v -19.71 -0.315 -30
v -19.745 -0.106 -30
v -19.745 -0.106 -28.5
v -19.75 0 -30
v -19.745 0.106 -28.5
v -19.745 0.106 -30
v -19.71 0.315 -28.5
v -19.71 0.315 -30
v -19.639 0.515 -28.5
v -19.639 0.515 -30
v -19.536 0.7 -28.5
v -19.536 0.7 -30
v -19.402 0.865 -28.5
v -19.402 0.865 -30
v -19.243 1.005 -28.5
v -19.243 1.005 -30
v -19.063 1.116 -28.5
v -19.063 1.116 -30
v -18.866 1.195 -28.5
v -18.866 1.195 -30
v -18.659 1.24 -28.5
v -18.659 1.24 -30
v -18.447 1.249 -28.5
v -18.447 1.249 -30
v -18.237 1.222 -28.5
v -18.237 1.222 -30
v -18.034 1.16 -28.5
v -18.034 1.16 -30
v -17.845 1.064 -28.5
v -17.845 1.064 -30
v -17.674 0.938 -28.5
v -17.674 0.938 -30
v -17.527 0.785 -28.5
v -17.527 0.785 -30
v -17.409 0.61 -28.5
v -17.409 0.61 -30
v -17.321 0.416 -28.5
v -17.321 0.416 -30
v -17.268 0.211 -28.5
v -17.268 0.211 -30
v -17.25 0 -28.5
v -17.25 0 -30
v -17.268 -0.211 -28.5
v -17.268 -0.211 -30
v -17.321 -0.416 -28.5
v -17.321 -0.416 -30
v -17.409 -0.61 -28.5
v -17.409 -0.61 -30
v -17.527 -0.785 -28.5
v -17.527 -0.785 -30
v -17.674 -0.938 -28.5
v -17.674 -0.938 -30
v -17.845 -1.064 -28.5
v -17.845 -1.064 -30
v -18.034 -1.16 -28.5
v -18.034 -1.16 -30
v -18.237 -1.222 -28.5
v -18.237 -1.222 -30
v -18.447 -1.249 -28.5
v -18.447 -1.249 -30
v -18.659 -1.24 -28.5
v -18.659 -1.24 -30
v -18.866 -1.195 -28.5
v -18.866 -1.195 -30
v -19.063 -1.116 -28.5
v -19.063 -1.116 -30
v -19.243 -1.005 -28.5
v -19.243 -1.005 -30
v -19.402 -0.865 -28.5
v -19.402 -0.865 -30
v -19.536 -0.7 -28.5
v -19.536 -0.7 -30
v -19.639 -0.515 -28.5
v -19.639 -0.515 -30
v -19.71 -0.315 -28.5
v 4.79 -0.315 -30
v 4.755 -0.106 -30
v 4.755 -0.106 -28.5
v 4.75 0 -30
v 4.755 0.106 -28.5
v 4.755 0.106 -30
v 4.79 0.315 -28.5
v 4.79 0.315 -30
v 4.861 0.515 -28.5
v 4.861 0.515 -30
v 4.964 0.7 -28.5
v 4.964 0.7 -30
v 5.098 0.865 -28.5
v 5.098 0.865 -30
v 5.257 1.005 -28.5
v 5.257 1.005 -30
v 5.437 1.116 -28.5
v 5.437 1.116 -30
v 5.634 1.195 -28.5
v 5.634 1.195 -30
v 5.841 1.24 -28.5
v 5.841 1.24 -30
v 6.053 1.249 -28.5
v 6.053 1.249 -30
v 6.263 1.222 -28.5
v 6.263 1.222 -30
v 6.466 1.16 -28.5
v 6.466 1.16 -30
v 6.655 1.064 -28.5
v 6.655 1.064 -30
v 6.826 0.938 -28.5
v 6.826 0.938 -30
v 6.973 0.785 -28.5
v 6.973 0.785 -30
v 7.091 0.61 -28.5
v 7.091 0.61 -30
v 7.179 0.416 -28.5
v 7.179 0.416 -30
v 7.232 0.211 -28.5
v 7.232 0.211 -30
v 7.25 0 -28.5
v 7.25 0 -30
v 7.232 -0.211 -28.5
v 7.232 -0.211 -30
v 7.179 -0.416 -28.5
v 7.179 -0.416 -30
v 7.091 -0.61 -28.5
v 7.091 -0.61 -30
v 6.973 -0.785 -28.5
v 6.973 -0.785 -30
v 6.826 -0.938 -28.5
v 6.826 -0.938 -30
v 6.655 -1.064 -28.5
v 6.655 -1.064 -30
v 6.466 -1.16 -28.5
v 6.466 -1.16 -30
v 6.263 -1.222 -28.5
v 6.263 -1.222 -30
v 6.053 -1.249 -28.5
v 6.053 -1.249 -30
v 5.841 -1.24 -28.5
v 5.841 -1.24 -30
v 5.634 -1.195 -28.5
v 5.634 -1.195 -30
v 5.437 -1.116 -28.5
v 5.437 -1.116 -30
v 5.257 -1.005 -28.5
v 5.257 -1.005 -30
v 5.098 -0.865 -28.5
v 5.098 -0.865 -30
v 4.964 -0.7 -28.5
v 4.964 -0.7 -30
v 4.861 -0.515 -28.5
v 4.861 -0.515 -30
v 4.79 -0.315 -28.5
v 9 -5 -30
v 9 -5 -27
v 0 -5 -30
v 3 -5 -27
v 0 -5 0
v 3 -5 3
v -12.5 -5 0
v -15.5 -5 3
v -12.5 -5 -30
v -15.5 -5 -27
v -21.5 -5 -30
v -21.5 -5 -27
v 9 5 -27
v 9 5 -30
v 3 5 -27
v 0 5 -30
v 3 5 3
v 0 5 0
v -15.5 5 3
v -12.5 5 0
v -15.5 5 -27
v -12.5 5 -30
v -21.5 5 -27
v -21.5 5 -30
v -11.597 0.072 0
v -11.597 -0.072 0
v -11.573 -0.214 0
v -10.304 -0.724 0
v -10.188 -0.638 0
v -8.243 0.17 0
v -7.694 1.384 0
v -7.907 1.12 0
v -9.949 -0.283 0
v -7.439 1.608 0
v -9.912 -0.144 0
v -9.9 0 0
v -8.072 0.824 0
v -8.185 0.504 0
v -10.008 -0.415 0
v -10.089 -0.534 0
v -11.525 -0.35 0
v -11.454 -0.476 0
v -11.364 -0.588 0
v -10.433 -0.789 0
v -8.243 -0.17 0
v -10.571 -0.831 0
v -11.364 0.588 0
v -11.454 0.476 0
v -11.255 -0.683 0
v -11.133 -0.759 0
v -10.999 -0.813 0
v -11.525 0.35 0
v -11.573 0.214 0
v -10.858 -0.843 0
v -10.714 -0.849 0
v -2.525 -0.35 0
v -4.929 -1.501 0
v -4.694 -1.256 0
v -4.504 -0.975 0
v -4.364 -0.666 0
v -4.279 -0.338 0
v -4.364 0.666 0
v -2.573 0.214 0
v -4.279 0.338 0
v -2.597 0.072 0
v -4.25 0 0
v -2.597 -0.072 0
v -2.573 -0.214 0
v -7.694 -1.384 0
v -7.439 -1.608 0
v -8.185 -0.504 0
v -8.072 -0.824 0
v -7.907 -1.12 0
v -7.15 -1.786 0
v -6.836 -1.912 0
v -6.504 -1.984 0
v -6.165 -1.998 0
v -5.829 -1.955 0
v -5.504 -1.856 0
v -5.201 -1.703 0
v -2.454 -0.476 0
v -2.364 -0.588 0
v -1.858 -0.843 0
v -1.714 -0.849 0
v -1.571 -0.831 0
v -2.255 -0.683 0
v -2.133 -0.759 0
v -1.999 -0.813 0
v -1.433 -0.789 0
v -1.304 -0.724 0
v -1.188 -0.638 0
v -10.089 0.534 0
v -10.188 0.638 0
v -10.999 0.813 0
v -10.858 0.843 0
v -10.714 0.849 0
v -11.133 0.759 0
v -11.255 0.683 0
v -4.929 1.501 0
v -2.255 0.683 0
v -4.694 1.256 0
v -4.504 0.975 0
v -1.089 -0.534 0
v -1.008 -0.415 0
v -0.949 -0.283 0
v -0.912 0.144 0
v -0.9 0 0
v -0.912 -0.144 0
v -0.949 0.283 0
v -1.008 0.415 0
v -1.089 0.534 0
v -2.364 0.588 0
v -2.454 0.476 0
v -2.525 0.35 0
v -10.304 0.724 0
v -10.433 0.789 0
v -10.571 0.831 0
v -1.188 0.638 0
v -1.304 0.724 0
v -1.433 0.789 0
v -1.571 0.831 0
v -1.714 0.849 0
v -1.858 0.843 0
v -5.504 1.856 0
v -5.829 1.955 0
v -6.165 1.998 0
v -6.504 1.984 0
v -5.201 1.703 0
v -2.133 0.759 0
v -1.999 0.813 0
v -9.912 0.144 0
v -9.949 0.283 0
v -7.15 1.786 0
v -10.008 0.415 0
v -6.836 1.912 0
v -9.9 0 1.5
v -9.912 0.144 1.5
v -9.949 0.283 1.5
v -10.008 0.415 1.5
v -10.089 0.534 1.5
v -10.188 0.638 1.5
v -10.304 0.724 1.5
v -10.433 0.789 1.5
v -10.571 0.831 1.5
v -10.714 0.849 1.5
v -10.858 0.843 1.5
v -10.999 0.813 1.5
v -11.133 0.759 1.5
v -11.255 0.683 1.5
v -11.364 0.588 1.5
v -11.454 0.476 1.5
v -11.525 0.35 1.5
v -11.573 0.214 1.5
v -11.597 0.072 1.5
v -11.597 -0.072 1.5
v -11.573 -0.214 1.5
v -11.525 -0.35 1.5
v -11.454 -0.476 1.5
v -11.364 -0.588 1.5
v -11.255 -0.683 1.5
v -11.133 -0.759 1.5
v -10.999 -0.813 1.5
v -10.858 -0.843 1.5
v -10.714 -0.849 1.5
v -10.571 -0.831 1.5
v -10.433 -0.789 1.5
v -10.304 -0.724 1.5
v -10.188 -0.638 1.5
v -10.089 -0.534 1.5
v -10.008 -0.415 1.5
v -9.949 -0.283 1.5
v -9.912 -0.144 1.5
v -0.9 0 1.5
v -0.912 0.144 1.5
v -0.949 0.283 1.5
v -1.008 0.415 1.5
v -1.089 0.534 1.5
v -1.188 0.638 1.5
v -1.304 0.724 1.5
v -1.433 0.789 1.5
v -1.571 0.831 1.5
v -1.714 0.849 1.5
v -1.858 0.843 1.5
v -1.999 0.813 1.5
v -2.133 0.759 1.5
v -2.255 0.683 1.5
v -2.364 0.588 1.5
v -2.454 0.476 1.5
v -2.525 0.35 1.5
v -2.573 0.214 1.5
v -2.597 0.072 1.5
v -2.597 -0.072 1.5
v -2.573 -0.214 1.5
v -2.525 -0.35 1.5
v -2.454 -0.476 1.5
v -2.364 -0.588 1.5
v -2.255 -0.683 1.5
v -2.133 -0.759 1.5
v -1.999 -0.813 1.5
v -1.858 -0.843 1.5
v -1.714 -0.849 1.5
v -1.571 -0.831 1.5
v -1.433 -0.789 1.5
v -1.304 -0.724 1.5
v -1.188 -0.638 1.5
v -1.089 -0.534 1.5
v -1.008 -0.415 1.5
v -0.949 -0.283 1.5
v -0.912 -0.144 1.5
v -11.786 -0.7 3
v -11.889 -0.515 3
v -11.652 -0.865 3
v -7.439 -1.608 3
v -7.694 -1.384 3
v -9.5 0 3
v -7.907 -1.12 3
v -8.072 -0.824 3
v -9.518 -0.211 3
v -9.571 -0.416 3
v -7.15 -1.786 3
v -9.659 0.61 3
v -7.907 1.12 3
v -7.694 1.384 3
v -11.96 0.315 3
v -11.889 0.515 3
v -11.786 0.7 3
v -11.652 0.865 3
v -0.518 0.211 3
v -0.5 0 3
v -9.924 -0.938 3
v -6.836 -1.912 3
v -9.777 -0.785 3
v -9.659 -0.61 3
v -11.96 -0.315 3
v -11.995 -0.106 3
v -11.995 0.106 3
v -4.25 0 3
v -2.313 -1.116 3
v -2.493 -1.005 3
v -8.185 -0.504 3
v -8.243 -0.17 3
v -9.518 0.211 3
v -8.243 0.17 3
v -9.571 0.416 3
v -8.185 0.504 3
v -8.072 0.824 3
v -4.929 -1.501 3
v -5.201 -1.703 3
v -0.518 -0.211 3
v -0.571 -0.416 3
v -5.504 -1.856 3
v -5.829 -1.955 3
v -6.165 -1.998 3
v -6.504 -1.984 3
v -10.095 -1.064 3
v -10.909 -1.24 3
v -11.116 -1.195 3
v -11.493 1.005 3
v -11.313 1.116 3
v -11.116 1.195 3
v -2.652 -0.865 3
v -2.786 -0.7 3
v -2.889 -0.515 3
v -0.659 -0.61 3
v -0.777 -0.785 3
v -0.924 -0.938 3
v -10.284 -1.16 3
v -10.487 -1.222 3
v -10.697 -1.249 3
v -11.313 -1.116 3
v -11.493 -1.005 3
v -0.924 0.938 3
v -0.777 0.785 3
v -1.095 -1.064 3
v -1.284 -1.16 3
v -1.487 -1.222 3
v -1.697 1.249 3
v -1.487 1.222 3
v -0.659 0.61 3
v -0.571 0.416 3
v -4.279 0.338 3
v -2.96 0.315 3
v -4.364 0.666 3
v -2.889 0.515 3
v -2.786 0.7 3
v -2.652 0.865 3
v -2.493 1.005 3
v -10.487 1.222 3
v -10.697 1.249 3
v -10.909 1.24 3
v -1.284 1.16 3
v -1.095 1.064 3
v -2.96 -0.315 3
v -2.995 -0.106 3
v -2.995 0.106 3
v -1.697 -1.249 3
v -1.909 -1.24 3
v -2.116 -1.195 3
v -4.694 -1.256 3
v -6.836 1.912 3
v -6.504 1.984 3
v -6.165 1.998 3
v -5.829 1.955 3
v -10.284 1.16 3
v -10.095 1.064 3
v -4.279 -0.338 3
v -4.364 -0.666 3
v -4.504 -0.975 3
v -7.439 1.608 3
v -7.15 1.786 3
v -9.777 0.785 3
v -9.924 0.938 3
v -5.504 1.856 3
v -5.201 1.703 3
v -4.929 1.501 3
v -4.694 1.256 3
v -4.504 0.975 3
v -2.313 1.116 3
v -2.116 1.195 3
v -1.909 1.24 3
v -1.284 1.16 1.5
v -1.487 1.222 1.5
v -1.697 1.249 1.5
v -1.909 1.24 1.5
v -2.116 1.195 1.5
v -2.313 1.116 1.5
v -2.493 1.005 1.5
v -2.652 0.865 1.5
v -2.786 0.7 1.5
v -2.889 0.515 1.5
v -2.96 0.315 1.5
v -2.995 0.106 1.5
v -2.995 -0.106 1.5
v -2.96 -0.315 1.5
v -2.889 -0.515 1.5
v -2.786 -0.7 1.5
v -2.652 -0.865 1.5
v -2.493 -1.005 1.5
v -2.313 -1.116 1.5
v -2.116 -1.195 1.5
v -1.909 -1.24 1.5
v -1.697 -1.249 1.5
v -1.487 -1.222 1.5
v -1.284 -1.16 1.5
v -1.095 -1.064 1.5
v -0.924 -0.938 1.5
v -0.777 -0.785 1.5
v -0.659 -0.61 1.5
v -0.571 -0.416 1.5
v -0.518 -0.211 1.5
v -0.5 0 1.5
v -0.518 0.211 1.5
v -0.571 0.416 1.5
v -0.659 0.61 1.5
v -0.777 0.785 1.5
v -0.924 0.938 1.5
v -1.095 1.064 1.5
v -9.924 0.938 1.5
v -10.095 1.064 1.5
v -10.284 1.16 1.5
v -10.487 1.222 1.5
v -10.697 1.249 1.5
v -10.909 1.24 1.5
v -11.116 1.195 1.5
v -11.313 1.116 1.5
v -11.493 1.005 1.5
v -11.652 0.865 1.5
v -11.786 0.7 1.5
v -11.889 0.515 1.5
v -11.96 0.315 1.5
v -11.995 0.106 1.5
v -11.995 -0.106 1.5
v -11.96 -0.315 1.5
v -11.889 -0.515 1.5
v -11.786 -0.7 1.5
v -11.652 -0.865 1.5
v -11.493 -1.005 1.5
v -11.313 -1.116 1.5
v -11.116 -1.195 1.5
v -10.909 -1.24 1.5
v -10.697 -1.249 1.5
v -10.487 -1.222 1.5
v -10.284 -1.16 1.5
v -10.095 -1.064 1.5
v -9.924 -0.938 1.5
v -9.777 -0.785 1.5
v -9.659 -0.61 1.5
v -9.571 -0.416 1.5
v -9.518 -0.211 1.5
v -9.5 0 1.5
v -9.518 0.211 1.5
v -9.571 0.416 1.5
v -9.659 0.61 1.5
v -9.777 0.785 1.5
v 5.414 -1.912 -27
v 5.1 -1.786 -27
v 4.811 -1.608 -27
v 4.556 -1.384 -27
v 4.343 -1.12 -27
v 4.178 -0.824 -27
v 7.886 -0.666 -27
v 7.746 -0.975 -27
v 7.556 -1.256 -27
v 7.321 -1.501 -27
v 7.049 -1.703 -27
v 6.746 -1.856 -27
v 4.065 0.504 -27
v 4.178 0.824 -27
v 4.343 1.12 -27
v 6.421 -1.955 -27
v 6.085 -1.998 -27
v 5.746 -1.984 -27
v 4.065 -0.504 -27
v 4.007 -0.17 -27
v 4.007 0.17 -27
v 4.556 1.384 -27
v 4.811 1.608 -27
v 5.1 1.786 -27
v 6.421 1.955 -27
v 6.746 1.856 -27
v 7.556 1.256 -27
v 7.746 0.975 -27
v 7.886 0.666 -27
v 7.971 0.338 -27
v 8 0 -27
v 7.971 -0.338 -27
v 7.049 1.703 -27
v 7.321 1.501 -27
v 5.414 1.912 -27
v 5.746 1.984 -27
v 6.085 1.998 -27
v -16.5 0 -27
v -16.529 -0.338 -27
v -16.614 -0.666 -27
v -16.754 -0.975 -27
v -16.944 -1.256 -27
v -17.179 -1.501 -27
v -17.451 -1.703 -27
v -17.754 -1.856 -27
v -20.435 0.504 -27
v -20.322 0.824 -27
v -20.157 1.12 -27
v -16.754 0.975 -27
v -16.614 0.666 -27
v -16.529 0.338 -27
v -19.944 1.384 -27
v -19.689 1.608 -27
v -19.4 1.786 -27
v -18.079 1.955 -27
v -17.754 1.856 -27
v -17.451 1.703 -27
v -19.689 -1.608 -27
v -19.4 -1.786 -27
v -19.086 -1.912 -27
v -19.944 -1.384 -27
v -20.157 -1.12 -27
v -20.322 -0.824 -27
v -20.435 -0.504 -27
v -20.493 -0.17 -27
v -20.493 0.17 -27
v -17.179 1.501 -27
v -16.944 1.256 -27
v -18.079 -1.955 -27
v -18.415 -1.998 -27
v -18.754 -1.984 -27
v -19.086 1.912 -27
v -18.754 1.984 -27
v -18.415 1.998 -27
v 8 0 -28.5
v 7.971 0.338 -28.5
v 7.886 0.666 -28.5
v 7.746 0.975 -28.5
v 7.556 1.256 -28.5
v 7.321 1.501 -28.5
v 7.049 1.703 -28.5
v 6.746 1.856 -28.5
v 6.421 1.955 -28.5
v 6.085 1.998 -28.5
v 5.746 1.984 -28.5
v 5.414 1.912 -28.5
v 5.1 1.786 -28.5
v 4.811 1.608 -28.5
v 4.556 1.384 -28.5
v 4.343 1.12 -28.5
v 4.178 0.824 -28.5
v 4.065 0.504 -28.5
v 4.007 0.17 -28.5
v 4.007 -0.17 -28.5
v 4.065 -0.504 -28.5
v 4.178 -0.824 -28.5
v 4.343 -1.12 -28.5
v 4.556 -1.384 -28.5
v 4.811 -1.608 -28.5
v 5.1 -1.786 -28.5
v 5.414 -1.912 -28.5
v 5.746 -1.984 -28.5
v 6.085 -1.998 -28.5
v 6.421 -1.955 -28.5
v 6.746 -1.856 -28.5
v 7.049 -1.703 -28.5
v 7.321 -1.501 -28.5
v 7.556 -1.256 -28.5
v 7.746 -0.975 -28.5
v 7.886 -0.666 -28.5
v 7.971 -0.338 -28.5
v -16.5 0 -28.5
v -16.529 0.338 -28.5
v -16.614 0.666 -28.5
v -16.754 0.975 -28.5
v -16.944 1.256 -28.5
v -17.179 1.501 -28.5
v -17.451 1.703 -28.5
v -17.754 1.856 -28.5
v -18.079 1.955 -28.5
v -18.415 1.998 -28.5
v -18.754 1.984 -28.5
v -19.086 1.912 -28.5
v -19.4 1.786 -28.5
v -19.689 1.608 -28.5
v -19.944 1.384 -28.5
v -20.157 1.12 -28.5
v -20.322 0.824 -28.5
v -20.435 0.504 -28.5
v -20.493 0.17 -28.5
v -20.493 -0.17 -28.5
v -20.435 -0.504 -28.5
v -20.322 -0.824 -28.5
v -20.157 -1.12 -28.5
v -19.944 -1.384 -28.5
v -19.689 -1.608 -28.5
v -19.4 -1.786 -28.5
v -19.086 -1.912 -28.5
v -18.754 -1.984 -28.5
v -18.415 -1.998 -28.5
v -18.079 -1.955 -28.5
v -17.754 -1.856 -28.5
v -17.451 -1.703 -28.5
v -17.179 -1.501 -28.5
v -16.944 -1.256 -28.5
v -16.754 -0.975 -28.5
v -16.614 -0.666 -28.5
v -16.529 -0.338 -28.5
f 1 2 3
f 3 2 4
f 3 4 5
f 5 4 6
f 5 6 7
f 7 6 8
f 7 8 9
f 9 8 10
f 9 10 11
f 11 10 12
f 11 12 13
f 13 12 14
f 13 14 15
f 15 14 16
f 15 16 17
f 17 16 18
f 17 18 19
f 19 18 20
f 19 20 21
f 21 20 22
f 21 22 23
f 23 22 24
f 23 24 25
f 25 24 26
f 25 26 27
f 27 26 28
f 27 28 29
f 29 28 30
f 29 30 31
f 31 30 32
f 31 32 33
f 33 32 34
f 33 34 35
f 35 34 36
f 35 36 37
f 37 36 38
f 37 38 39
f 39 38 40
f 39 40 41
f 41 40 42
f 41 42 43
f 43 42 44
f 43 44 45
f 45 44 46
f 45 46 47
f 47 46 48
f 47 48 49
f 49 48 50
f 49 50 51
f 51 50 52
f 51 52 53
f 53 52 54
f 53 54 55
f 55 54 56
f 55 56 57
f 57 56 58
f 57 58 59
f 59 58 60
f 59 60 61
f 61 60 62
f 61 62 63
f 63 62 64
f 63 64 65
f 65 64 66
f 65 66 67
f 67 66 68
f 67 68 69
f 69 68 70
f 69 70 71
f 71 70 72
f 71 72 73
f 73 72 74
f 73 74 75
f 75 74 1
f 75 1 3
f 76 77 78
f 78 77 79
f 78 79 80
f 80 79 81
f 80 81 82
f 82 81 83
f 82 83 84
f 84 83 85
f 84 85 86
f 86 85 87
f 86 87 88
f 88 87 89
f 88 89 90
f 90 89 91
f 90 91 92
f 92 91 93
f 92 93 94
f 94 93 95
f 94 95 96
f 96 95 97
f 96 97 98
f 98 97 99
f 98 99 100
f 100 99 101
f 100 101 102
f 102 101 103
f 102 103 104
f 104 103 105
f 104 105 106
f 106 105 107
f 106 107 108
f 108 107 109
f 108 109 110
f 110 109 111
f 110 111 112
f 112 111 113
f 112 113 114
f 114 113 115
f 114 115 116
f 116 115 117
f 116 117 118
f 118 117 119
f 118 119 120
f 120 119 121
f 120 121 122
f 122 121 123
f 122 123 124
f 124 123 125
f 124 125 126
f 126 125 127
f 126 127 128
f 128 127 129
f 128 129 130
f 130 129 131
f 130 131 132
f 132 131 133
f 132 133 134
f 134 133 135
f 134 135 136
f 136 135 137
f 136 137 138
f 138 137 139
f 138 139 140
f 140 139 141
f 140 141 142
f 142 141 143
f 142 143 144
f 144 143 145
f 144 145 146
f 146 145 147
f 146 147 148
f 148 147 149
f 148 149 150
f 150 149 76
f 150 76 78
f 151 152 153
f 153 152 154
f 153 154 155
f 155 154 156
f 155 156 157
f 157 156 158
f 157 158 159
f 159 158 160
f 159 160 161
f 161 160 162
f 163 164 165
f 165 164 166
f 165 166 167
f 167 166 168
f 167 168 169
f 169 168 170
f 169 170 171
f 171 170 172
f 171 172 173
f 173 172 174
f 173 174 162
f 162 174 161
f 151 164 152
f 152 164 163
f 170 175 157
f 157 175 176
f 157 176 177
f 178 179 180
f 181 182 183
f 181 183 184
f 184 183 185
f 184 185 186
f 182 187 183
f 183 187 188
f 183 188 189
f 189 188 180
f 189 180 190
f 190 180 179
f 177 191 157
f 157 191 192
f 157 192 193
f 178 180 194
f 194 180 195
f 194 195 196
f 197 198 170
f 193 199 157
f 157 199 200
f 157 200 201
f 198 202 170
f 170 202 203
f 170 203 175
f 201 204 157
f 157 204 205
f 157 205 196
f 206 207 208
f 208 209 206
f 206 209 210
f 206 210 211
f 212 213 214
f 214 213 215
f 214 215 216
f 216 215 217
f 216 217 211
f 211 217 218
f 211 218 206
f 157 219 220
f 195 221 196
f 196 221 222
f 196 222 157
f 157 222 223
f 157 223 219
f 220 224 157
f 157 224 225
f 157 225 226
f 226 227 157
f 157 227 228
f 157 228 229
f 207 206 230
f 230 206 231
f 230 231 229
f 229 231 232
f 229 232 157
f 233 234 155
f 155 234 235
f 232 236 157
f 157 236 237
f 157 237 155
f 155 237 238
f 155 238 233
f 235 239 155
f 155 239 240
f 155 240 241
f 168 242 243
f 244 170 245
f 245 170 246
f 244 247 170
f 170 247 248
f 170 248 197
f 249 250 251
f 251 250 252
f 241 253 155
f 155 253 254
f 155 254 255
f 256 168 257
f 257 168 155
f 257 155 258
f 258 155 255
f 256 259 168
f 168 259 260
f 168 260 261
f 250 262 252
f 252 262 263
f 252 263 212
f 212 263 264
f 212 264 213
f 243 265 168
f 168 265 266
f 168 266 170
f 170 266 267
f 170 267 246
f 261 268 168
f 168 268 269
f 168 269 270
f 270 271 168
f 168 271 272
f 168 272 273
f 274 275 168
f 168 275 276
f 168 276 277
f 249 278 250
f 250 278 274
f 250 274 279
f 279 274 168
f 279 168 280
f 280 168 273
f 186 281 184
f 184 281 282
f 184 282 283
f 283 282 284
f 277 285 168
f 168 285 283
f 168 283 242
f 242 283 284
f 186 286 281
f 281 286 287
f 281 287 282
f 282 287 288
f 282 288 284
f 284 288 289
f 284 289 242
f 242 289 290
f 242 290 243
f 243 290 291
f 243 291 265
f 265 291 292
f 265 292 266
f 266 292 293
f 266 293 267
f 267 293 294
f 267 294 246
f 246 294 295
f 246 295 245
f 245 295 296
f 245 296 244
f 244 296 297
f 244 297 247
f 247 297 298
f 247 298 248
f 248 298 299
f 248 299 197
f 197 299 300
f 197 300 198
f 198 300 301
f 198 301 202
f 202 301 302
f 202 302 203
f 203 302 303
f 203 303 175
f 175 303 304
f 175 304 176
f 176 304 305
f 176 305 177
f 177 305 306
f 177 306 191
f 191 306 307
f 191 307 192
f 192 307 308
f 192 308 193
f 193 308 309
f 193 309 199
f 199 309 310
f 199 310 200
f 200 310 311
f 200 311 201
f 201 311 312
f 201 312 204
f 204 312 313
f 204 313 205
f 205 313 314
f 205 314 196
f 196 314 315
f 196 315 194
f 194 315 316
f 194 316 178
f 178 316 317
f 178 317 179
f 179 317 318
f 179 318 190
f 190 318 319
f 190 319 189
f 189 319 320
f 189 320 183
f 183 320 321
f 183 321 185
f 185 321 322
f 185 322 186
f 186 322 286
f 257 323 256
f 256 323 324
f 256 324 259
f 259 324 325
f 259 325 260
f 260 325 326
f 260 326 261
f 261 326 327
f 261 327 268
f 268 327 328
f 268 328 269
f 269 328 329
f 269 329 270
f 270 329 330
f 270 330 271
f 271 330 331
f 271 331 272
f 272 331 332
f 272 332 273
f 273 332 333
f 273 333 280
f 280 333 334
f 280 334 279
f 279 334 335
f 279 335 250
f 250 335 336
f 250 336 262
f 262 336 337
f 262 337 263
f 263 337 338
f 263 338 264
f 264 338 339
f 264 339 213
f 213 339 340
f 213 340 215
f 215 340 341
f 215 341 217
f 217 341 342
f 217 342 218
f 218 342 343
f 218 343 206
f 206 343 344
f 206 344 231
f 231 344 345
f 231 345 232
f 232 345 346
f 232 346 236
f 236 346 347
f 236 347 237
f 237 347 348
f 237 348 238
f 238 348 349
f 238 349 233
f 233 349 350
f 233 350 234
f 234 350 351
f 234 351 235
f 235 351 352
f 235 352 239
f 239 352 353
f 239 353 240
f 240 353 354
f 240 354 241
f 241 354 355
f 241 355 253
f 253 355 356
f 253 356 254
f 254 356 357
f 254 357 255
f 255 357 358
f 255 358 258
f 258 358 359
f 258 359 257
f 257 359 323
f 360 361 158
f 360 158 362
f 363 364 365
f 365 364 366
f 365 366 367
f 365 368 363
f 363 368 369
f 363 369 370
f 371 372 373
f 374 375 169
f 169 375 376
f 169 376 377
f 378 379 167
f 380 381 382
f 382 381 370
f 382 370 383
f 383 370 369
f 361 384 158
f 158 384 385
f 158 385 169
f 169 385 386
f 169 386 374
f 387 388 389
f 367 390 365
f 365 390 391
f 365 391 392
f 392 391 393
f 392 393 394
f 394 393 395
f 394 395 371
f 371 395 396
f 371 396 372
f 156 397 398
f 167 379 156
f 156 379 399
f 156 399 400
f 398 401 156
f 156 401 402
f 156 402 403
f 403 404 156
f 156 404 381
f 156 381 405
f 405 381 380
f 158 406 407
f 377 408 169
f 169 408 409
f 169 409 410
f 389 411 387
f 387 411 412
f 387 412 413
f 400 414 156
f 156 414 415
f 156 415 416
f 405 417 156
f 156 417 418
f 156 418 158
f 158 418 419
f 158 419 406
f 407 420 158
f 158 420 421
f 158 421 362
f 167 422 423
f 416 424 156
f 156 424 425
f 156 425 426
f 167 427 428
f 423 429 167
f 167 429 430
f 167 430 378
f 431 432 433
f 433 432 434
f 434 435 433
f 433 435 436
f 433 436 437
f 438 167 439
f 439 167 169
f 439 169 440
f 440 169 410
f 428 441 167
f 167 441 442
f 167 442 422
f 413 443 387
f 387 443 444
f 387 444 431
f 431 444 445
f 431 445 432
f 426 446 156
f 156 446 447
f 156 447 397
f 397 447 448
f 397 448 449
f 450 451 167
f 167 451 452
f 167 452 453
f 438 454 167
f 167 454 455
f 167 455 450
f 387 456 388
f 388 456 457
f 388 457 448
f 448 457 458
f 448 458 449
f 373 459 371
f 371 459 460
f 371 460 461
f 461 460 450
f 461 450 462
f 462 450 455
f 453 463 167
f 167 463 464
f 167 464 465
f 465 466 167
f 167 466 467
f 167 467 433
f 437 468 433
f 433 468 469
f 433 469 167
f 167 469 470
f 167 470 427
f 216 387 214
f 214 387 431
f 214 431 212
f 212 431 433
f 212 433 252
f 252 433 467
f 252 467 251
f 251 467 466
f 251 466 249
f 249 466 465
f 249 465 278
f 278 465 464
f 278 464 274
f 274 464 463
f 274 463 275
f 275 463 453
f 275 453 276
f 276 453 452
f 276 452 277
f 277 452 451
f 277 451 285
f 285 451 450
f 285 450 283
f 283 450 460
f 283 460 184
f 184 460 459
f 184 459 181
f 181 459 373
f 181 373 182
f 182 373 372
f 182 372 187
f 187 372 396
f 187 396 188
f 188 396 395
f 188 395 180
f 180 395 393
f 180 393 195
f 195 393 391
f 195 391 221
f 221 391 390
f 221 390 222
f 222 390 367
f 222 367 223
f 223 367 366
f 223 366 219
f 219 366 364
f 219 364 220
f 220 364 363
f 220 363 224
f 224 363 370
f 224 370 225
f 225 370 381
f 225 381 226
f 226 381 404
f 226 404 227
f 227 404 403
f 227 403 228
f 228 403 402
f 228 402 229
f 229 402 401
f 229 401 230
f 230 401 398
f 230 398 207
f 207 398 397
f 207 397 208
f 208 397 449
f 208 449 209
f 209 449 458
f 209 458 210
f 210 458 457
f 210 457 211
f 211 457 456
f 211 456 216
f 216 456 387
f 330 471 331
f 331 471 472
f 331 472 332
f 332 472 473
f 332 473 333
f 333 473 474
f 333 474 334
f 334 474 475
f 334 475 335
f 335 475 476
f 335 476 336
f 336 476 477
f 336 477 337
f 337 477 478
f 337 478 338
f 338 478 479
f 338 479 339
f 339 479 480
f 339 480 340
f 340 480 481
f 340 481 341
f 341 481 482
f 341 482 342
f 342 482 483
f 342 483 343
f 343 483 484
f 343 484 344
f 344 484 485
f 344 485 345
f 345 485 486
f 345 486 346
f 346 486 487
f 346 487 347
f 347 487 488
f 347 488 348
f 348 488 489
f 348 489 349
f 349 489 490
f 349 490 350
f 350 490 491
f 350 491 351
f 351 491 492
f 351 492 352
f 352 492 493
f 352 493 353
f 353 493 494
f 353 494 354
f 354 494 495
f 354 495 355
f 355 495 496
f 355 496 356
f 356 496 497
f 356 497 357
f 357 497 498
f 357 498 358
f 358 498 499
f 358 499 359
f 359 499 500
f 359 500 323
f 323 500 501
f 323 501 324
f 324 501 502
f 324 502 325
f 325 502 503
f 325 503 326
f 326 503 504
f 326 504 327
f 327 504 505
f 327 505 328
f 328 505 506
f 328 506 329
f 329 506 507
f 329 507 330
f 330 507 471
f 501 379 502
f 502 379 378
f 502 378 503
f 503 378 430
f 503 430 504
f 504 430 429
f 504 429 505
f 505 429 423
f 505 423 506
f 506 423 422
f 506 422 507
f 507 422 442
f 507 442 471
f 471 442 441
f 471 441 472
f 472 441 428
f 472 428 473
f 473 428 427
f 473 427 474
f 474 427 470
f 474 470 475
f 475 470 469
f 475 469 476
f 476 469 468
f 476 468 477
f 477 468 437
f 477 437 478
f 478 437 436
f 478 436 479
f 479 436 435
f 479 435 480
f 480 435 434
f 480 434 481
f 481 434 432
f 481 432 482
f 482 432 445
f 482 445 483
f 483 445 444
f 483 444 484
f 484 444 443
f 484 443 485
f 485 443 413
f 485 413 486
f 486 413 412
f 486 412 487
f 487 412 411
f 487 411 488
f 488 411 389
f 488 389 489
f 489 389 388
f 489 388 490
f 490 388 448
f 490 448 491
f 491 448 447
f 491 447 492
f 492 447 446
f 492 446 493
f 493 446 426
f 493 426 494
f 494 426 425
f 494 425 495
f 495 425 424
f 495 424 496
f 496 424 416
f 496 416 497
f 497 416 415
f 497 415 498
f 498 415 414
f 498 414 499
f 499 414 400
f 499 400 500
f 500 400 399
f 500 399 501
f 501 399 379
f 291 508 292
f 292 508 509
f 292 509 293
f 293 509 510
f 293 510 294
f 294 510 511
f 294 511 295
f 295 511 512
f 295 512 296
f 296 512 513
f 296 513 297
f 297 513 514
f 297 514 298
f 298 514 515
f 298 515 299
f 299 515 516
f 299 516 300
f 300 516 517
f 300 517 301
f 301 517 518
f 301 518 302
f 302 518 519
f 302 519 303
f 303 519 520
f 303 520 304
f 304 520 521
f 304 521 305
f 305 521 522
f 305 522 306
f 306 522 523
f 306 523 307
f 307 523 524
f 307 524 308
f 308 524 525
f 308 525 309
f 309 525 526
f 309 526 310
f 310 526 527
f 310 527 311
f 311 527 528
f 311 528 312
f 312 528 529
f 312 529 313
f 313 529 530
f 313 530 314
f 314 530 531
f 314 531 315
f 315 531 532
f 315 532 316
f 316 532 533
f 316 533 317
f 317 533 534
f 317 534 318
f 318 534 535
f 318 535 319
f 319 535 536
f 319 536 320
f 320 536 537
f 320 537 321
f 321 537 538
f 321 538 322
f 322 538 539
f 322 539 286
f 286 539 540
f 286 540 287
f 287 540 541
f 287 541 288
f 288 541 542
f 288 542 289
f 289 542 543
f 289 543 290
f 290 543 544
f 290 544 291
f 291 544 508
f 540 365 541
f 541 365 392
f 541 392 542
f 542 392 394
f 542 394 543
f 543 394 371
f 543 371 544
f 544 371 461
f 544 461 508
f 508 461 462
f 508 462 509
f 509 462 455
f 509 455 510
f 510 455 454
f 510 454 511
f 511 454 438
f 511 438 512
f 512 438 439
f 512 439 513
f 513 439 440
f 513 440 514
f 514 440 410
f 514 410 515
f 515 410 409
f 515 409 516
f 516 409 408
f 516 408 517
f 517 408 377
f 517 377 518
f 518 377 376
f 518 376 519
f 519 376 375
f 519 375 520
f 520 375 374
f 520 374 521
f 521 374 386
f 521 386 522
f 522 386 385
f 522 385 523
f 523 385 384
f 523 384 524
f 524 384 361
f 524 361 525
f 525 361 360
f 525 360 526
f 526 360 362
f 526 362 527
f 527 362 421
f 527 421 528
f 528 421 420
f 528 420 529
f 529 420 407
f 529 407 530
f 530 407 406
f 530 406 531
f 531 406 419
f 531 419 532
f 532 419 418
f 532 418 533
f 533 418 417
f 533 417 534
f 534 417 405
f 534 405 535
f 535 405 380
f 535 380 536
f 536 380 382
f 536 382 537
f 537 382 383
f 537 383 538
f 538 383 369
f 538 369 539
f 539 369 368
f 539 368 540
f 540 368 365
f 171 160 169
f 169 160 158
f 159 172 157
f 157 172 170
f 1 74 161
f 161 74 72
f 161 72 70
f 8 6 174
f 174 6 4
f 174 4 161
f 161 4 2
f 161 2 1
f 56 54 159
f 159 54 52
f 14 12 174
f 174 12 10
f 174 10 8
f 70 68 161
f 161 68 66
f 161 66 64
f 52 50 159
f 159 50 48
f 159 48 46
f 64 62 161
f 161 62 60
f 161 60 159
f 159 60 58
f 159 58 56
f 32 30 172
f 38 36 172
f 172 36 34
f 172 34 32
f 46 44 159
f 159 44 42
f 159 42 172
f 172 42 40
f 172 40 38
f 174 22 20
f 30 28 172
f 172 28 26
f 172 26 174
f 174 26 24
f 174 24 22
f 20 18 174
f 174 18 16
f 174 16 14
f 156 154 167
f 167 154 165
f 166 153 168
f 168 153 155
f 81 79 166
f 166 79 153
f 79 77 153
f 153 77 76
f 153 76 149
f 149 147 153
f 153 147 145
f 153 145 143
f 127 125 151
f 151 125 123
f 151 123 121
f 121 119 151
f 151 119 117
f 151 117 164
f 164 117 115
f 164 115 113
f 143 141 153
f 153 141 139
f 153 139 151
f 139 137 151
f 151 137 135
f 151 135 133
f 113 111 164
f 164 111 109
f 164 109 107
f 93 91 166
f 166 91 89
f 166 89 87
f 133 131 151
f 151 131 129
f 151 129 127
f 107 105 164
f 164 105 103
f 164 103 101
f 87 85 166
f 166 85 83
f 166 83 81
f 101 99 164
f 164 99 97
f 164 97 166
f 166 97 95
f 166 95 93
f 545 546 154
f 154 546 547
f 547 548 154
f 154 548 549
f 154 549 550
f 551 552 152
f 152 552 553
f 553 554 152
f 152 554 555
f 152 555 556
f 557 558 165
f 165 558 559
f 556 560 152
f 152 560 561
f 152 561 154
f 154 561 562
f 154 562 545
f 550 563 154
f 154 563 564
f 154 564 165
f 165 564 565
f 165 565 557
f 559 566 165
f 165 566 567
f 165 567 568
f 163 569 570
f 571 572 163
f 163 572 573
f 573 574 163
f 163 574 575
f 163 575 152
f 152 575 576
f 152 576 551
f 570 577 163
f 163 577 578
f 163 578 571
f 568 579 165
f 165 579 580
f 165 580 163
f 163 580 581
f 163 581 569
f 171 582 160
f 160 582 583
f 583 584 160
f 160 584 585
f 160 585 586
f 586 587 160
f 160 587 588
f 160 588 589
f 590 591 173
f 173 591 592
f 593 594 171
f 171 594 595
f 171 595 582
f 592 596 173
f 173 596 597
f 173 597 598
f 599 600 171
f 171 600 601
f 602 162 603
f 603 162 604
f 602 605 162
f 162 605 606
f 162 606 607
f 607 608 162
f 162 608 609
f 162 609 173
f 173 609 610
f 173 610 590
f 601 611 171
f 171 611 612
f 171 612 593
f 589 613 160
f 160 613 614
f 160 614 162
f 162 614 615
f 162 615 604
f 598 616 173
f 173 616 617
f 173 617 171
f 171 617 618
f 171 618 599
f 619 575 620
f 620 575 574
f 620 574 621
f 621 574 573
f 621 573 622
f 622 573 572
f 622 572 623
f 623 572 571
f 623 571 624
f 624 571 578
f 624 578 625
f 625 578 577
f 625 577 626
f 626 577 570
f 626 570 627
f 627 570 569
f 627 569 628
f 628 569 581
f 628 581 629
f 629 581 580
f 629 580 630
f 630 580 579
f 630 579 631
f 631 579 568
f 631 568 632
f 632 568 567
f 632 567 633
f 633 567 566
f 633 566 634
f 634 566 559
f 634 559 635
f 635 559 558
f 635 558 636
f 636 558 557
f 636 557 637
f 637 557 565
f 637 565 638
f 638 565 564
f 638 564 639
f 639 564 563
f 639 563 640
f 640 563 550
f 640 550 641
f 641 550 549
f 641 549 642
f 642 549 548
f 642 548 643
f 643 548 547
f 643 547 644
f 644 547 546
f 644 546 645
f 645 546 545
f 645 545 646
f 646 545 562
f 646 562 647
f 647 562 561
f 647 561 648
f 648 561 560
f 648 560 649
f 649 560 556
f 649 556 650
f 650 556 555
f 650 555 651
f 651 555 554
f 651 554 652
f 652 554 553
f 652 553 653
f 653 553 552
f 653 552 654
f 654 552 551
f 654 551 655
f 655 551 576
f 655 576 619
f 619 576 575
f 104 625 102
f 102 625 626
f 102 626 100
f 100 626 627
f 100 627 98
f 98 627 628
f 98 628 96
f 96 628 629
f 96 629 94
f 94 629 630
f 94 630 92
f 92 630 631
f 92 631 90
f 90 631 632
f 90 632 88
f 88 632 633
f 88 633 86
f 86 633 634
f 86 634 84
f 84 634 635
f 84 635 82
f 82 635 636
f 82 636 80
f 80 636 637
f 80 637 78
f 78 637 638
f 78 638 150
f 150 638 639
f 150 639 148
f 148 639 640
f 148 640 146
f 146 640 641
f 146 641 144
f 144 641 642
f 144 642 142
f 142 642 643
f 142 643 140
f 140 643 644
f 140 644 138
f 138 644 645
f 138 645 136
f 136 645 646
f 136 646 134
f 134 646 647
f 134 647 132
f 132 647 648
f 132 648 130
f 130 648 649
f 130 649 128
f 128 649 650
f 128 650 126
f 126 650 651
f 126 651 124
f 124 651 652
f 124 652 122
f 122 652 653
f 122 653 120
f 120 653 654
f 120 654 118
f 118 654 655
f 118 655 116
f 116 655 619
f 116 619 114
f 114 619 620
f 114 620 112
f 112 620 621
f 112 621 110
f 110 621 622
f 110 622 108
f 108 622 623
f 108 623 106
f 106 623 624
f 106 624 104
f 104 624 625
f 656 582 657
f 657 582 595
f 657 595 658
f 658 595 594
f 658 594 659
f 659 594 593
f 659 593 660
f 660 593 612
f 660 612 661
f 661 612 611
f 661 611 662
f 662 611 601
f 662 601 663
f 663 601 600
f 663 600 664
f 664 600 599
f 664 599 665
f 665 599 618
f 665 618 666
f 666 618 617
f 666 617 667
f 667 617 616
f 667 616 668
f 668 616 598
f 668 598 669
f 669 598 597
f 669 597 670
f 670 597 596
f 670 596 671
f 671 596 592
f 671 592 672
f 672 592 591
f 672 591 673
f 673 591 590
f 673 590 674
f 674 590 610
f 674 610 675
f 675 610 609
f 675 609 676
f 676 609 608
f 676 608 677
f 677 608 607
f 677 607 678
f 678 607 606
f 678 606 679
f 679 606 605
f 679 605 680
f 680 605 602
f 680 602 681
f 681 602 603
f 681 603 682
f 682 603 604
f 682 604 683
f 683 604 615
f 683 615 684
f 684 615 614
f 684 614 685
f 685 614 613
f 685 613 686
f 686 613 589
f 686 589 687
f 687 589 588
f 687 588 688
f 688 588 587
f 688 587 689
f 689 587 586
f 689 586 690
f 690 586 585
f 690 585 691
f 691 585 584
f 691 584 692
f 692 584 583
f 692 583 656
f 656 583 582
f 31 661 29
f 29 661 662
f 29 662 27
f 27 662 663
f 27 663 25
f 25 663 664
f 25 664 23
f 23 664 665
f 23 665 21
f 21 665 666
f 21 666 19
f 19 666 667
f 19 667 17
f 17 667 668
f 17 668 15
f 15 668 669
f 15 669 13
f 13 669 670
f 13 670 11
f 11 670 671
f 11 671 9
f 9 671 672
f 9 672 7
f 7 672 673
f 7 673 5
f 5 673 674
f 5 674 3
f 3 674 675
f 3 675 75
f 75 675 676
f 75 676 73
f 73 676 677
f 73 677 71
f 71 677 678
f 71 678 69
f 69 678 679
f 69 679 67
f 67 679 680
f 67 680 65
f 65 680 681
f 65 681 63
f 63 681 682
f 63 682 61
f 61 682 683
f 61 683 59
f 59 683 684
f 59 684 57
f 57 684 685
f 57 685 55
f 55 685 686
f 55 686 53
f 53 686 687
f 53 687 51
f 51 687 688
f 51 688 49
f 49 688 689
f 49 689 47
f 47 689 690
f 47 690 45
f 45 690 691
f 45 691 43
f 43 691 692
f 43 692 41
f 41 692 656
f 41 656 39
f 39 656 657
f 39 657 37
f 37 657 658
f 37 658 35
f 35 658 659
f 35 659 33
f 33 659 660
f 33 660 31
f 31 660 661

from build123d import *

# Parameters (mm, degrees)
SKETCH_1_W          = 12.5
SKETCH_1_H          = 10
EXTRUDE_1_DEPTH     = 3
SKETCH_2_R          = 0.85
SKETCH_2_R_2        = 2
CUT_EXTRUDE_1_DEPTH = 14.793114224
SKETCH_2_3_R        = 1.25
SKETCH_2_3_R_2      = 2
CUT_EXTRUDE_2_DEPTH = 1.5
SKETCH_3_W          = 9
SKETCH_3_H          = 10
EXTRUDE_2_DEPTH     = 30
EXTRUDE_2_2_DEPTH   = 30
SKETCH_3_3_W        = 3
SKETCH_3_3_H        = 10
EXTRUDE_3_DEPTH     = 3
SKETCH_3_4_W        = 6
SKETCH_3_4_H        = 10
SKETCH_3_4_R        = 2
SKETCH_3_4_R_2      = 1.25
CUT_EXTRUDE_3_DEPTH = 27
SKETCH_3_5_R        = 1.25
CUT_EXTRUDE_4_DEPTH = 38.245805133
CUT_EXTRUDE_START   = 27
SKETCH_3_6_R        = 2
SKETCH_3_6_R_2      = 1.25
CUT_EXTRUDE_5_DEPTH = 1.5


with BuildPart() as part:
    # 草图1 → 凸台-拉伸1 (new body)
    with BuildSketch(Plane.XY):
        with Locations((-6.25, 0)):
            Rectangle(SKETCH_1_W, SKETCH_1_H)
    extrude(amount=EXTRUDE_1_DEPTH)

    # 草图2 → 切除-拉伸1 (cut, through all)
    with BuildSketch(Plane.XY.offset(3)):
        with Locations((-10.75, 0)):
            Circle(SKETCH_2_R)
        with Locations((-1.75, 0)):
            Circle(SKETCH_2_R)
        with Locations((-6.25, 0)):
            Circle(SKETCH_2_R_2)
    extrude(amount=-CUT_EXTRUDE_1_DEPTH, mode=Mode.SUBTRACT)

    # 草图2<3> → 切除-拉伸2 (cut)
    with BuildSketch(Plane.XY.offset(3)):
        with Locations((-1.75, 0)):
            Circle(SKETCH_2_3_R)
        with Locations((-10.75, 0)):
            Circle(SKETCH_2_3_R)
        with Locations((-6.25, 0)):
            Circle(SKETCH_2_3_R_2)
    extrude(amount=-CUT_EXTRUDE_2_DEPTH, mode=Mode.SUBTRACT)



with BuildPart() as body_2:
    # 草图3 → 凸台-拉伸2 (new body)
    with BuildSketch(Plane(origin=(0, 0, 0), x_dir=(-1, 0, 0), z_dir=(0, 0, -1))):
        with Locations((-4.5, 0)):
            Rectangle(SKETCH_3_W, SKETCH_3_H)
    extrude(amount=EXTRUDE_2_DEPTH)


with BuildPart() as body_3:
    # 草图3 → Extrude 2 2 (new body)
    with BuildSketch(Plane(origin=(0, 0, 0), x_dir=(-1, 0, 0), z_dir=(0, 0, -1))):
        with Locations((17, 0)):
            Rectangle(SKETCH_3_W, SKETCH_3_H)
    extrude(amount=EXTRUDE_2_2_DEPTH)


with BuildPart() as part_1:
    add(part.part)

    add(body_2.part)  # 凸台-拉伸3 merges body 2

    add(body_3.part)  # 凸台-拉伸3 merges body 3
    # 草图3<3> → 凸台-拉伸3 (add)
    with BuildSketch(Plane(origin=(0, 0, 0), x_dir=(-1, 0, 0), z_dir=(0, 0, -1))):
        with Locations((14, 0)):
            Rectangle(SKETCH_3_3_W, SKETCH_3_3_H)
        with Locations((-1.5, 0)):
            Rectangle(SKETCH_3_3_W, SKETCH_3_3_H)
    extrude(amount=-EXTRUDE_3_DEPTH)

    # 草图3<4> → 切除-拉伸3 (cut)
    # profile 1 of 6: a face of its own
    with BuildSketch(Plane(origin=(0, 0, 0), x_dir=(-1, 0, 0), z_dir=(0, 0, -1))):
        with Locations((-6, 0)):
            Rectangle(SKETCH_3_4_W, SKETCH_3_4_H)
        with Locations((-6, 0)):
            Circle(SKETCH_3_4_R, mode=Mode.SUBTRACT)
    # profile 2 of 6: a face of its own
    with BuildSketch(Plane(origin=(0, 0, 0), x_dir=(-1, 0, 0), z_dir=(0, 0, -1))):
        with Locations((18.5, 0)):
            Rectangle(SKETCH_3_4_W, SKETCH_3_4_H)
        with Locations((18.5, 0)):
            Circle(SKETCH_3_4_R, mode=Mode.SUBTRACT)
    # profile 3 of 6: a face of its own
    with BuildSketch(Plane(origin=(0, 0, 0), x_dir=(-1, 0, 0), z_dir=(0, 0, -1))):
        with Locations((-6, 0)):
            Circle(SKETCH_3_4_R)
        with Locations((-6, 0)):
            Circle(SKETCH_3_4_R_2, mode=Mode.SUBTRACT)
    # profile 4 of 6: a face of its own
    with BuildSketch(Plane(origin=(0, 0, 0), x_dir=(-1, 0, 0), z_dir=(0, 0, -1))):
        with Locations((-6, 0)):
            Circle(SKETCH_3_4_R_2)
    # profile 5 of 6: a face of its own
    with BuildSketch(Plane(origin=(0, 0, 0), x_dir=(-1, 0, 0), z_dir=(0, 0, -1))):
        with Locations((18.5, 0)):
            Circle(SKETCH_3_4_R)
        with Locations((18.5, 0)):
            Circle(SKETCH_3_4_R_2, mode=Mode.SUBTRACT)
    # profile 6 of 6: a face of its own
    with BuildSketch(Plane(origin=(0, 0, 0), x_dir=(-1, 0, 0), z_dir=(0, 0, -1))):
        with Locations((18.5, 0)):
            Circle(SKETCH_3_4_R_2)
    extrude(amount=CUT_EXTRUDE_3_DEPTH, mode=Mode.SUBTRACT)

    # 草图3<5> → 切除-拉伸4 (cut, through all)
    with BuildSketch(Plane(origin=(0, 0, 0), x_dir=(-1, 0, 0), z_dir=(0, 0, -1))):
        with Locations(Location((18.5, 0, 0), (0, 0, 180))):
            Circle(SKETCH_3_5_R)
        with Locations(Location((-6, 0, 0), (0, 0, 180))):
            Circle(SKETCH_3_5_R)
    extrude(amount=CUT_EXTRUDE_4_DEPTH, mode=Mode.SUBTRACT)

    # 草图3<6> → 切除-拉伸5 (cut)
    # profile 1 of 2: a face of its own
    with BuildSketch(Plane(origin=(0, 0, 0), x_dir=(-1, 0, 0), z_dir=(0, 0, -1)).offset(CUT_EXTRUDE_START)):
        with Locations(Location((18.5, 0, 0), (0, 0, 180))):
            Circle(SKETCH_3_6_R)
        with Locations(Location((18.5, 0, 0), (0, 0, 180))):
            Circle(SKETCH_3_6_R_2, mode=Mode.SUBTRACT)
    # profile 2 of 2: a face of its own
    with BuildSketch(Plane(origin=(0, 0, 0), x_dir=(-1, 0, 0), z_dir=(0, 0, -1)).offset(CUT_EXTRUDE_START)):
        with Locations(Location((-6, 0, 0), (0, 0, 180))):
            Circle(SKETCH_3_6_R)
        with Locations(Location((-6, 0, 0), (0, 0, 180))):
            Circle(SKETCH_3_6_R_2, mode=Mode.SUBTRACT)
    extrude(amount=CUT_EXTRUDE_5_DEPTH, mode=Mode.SUBTRACT)


solid = part_1.part
